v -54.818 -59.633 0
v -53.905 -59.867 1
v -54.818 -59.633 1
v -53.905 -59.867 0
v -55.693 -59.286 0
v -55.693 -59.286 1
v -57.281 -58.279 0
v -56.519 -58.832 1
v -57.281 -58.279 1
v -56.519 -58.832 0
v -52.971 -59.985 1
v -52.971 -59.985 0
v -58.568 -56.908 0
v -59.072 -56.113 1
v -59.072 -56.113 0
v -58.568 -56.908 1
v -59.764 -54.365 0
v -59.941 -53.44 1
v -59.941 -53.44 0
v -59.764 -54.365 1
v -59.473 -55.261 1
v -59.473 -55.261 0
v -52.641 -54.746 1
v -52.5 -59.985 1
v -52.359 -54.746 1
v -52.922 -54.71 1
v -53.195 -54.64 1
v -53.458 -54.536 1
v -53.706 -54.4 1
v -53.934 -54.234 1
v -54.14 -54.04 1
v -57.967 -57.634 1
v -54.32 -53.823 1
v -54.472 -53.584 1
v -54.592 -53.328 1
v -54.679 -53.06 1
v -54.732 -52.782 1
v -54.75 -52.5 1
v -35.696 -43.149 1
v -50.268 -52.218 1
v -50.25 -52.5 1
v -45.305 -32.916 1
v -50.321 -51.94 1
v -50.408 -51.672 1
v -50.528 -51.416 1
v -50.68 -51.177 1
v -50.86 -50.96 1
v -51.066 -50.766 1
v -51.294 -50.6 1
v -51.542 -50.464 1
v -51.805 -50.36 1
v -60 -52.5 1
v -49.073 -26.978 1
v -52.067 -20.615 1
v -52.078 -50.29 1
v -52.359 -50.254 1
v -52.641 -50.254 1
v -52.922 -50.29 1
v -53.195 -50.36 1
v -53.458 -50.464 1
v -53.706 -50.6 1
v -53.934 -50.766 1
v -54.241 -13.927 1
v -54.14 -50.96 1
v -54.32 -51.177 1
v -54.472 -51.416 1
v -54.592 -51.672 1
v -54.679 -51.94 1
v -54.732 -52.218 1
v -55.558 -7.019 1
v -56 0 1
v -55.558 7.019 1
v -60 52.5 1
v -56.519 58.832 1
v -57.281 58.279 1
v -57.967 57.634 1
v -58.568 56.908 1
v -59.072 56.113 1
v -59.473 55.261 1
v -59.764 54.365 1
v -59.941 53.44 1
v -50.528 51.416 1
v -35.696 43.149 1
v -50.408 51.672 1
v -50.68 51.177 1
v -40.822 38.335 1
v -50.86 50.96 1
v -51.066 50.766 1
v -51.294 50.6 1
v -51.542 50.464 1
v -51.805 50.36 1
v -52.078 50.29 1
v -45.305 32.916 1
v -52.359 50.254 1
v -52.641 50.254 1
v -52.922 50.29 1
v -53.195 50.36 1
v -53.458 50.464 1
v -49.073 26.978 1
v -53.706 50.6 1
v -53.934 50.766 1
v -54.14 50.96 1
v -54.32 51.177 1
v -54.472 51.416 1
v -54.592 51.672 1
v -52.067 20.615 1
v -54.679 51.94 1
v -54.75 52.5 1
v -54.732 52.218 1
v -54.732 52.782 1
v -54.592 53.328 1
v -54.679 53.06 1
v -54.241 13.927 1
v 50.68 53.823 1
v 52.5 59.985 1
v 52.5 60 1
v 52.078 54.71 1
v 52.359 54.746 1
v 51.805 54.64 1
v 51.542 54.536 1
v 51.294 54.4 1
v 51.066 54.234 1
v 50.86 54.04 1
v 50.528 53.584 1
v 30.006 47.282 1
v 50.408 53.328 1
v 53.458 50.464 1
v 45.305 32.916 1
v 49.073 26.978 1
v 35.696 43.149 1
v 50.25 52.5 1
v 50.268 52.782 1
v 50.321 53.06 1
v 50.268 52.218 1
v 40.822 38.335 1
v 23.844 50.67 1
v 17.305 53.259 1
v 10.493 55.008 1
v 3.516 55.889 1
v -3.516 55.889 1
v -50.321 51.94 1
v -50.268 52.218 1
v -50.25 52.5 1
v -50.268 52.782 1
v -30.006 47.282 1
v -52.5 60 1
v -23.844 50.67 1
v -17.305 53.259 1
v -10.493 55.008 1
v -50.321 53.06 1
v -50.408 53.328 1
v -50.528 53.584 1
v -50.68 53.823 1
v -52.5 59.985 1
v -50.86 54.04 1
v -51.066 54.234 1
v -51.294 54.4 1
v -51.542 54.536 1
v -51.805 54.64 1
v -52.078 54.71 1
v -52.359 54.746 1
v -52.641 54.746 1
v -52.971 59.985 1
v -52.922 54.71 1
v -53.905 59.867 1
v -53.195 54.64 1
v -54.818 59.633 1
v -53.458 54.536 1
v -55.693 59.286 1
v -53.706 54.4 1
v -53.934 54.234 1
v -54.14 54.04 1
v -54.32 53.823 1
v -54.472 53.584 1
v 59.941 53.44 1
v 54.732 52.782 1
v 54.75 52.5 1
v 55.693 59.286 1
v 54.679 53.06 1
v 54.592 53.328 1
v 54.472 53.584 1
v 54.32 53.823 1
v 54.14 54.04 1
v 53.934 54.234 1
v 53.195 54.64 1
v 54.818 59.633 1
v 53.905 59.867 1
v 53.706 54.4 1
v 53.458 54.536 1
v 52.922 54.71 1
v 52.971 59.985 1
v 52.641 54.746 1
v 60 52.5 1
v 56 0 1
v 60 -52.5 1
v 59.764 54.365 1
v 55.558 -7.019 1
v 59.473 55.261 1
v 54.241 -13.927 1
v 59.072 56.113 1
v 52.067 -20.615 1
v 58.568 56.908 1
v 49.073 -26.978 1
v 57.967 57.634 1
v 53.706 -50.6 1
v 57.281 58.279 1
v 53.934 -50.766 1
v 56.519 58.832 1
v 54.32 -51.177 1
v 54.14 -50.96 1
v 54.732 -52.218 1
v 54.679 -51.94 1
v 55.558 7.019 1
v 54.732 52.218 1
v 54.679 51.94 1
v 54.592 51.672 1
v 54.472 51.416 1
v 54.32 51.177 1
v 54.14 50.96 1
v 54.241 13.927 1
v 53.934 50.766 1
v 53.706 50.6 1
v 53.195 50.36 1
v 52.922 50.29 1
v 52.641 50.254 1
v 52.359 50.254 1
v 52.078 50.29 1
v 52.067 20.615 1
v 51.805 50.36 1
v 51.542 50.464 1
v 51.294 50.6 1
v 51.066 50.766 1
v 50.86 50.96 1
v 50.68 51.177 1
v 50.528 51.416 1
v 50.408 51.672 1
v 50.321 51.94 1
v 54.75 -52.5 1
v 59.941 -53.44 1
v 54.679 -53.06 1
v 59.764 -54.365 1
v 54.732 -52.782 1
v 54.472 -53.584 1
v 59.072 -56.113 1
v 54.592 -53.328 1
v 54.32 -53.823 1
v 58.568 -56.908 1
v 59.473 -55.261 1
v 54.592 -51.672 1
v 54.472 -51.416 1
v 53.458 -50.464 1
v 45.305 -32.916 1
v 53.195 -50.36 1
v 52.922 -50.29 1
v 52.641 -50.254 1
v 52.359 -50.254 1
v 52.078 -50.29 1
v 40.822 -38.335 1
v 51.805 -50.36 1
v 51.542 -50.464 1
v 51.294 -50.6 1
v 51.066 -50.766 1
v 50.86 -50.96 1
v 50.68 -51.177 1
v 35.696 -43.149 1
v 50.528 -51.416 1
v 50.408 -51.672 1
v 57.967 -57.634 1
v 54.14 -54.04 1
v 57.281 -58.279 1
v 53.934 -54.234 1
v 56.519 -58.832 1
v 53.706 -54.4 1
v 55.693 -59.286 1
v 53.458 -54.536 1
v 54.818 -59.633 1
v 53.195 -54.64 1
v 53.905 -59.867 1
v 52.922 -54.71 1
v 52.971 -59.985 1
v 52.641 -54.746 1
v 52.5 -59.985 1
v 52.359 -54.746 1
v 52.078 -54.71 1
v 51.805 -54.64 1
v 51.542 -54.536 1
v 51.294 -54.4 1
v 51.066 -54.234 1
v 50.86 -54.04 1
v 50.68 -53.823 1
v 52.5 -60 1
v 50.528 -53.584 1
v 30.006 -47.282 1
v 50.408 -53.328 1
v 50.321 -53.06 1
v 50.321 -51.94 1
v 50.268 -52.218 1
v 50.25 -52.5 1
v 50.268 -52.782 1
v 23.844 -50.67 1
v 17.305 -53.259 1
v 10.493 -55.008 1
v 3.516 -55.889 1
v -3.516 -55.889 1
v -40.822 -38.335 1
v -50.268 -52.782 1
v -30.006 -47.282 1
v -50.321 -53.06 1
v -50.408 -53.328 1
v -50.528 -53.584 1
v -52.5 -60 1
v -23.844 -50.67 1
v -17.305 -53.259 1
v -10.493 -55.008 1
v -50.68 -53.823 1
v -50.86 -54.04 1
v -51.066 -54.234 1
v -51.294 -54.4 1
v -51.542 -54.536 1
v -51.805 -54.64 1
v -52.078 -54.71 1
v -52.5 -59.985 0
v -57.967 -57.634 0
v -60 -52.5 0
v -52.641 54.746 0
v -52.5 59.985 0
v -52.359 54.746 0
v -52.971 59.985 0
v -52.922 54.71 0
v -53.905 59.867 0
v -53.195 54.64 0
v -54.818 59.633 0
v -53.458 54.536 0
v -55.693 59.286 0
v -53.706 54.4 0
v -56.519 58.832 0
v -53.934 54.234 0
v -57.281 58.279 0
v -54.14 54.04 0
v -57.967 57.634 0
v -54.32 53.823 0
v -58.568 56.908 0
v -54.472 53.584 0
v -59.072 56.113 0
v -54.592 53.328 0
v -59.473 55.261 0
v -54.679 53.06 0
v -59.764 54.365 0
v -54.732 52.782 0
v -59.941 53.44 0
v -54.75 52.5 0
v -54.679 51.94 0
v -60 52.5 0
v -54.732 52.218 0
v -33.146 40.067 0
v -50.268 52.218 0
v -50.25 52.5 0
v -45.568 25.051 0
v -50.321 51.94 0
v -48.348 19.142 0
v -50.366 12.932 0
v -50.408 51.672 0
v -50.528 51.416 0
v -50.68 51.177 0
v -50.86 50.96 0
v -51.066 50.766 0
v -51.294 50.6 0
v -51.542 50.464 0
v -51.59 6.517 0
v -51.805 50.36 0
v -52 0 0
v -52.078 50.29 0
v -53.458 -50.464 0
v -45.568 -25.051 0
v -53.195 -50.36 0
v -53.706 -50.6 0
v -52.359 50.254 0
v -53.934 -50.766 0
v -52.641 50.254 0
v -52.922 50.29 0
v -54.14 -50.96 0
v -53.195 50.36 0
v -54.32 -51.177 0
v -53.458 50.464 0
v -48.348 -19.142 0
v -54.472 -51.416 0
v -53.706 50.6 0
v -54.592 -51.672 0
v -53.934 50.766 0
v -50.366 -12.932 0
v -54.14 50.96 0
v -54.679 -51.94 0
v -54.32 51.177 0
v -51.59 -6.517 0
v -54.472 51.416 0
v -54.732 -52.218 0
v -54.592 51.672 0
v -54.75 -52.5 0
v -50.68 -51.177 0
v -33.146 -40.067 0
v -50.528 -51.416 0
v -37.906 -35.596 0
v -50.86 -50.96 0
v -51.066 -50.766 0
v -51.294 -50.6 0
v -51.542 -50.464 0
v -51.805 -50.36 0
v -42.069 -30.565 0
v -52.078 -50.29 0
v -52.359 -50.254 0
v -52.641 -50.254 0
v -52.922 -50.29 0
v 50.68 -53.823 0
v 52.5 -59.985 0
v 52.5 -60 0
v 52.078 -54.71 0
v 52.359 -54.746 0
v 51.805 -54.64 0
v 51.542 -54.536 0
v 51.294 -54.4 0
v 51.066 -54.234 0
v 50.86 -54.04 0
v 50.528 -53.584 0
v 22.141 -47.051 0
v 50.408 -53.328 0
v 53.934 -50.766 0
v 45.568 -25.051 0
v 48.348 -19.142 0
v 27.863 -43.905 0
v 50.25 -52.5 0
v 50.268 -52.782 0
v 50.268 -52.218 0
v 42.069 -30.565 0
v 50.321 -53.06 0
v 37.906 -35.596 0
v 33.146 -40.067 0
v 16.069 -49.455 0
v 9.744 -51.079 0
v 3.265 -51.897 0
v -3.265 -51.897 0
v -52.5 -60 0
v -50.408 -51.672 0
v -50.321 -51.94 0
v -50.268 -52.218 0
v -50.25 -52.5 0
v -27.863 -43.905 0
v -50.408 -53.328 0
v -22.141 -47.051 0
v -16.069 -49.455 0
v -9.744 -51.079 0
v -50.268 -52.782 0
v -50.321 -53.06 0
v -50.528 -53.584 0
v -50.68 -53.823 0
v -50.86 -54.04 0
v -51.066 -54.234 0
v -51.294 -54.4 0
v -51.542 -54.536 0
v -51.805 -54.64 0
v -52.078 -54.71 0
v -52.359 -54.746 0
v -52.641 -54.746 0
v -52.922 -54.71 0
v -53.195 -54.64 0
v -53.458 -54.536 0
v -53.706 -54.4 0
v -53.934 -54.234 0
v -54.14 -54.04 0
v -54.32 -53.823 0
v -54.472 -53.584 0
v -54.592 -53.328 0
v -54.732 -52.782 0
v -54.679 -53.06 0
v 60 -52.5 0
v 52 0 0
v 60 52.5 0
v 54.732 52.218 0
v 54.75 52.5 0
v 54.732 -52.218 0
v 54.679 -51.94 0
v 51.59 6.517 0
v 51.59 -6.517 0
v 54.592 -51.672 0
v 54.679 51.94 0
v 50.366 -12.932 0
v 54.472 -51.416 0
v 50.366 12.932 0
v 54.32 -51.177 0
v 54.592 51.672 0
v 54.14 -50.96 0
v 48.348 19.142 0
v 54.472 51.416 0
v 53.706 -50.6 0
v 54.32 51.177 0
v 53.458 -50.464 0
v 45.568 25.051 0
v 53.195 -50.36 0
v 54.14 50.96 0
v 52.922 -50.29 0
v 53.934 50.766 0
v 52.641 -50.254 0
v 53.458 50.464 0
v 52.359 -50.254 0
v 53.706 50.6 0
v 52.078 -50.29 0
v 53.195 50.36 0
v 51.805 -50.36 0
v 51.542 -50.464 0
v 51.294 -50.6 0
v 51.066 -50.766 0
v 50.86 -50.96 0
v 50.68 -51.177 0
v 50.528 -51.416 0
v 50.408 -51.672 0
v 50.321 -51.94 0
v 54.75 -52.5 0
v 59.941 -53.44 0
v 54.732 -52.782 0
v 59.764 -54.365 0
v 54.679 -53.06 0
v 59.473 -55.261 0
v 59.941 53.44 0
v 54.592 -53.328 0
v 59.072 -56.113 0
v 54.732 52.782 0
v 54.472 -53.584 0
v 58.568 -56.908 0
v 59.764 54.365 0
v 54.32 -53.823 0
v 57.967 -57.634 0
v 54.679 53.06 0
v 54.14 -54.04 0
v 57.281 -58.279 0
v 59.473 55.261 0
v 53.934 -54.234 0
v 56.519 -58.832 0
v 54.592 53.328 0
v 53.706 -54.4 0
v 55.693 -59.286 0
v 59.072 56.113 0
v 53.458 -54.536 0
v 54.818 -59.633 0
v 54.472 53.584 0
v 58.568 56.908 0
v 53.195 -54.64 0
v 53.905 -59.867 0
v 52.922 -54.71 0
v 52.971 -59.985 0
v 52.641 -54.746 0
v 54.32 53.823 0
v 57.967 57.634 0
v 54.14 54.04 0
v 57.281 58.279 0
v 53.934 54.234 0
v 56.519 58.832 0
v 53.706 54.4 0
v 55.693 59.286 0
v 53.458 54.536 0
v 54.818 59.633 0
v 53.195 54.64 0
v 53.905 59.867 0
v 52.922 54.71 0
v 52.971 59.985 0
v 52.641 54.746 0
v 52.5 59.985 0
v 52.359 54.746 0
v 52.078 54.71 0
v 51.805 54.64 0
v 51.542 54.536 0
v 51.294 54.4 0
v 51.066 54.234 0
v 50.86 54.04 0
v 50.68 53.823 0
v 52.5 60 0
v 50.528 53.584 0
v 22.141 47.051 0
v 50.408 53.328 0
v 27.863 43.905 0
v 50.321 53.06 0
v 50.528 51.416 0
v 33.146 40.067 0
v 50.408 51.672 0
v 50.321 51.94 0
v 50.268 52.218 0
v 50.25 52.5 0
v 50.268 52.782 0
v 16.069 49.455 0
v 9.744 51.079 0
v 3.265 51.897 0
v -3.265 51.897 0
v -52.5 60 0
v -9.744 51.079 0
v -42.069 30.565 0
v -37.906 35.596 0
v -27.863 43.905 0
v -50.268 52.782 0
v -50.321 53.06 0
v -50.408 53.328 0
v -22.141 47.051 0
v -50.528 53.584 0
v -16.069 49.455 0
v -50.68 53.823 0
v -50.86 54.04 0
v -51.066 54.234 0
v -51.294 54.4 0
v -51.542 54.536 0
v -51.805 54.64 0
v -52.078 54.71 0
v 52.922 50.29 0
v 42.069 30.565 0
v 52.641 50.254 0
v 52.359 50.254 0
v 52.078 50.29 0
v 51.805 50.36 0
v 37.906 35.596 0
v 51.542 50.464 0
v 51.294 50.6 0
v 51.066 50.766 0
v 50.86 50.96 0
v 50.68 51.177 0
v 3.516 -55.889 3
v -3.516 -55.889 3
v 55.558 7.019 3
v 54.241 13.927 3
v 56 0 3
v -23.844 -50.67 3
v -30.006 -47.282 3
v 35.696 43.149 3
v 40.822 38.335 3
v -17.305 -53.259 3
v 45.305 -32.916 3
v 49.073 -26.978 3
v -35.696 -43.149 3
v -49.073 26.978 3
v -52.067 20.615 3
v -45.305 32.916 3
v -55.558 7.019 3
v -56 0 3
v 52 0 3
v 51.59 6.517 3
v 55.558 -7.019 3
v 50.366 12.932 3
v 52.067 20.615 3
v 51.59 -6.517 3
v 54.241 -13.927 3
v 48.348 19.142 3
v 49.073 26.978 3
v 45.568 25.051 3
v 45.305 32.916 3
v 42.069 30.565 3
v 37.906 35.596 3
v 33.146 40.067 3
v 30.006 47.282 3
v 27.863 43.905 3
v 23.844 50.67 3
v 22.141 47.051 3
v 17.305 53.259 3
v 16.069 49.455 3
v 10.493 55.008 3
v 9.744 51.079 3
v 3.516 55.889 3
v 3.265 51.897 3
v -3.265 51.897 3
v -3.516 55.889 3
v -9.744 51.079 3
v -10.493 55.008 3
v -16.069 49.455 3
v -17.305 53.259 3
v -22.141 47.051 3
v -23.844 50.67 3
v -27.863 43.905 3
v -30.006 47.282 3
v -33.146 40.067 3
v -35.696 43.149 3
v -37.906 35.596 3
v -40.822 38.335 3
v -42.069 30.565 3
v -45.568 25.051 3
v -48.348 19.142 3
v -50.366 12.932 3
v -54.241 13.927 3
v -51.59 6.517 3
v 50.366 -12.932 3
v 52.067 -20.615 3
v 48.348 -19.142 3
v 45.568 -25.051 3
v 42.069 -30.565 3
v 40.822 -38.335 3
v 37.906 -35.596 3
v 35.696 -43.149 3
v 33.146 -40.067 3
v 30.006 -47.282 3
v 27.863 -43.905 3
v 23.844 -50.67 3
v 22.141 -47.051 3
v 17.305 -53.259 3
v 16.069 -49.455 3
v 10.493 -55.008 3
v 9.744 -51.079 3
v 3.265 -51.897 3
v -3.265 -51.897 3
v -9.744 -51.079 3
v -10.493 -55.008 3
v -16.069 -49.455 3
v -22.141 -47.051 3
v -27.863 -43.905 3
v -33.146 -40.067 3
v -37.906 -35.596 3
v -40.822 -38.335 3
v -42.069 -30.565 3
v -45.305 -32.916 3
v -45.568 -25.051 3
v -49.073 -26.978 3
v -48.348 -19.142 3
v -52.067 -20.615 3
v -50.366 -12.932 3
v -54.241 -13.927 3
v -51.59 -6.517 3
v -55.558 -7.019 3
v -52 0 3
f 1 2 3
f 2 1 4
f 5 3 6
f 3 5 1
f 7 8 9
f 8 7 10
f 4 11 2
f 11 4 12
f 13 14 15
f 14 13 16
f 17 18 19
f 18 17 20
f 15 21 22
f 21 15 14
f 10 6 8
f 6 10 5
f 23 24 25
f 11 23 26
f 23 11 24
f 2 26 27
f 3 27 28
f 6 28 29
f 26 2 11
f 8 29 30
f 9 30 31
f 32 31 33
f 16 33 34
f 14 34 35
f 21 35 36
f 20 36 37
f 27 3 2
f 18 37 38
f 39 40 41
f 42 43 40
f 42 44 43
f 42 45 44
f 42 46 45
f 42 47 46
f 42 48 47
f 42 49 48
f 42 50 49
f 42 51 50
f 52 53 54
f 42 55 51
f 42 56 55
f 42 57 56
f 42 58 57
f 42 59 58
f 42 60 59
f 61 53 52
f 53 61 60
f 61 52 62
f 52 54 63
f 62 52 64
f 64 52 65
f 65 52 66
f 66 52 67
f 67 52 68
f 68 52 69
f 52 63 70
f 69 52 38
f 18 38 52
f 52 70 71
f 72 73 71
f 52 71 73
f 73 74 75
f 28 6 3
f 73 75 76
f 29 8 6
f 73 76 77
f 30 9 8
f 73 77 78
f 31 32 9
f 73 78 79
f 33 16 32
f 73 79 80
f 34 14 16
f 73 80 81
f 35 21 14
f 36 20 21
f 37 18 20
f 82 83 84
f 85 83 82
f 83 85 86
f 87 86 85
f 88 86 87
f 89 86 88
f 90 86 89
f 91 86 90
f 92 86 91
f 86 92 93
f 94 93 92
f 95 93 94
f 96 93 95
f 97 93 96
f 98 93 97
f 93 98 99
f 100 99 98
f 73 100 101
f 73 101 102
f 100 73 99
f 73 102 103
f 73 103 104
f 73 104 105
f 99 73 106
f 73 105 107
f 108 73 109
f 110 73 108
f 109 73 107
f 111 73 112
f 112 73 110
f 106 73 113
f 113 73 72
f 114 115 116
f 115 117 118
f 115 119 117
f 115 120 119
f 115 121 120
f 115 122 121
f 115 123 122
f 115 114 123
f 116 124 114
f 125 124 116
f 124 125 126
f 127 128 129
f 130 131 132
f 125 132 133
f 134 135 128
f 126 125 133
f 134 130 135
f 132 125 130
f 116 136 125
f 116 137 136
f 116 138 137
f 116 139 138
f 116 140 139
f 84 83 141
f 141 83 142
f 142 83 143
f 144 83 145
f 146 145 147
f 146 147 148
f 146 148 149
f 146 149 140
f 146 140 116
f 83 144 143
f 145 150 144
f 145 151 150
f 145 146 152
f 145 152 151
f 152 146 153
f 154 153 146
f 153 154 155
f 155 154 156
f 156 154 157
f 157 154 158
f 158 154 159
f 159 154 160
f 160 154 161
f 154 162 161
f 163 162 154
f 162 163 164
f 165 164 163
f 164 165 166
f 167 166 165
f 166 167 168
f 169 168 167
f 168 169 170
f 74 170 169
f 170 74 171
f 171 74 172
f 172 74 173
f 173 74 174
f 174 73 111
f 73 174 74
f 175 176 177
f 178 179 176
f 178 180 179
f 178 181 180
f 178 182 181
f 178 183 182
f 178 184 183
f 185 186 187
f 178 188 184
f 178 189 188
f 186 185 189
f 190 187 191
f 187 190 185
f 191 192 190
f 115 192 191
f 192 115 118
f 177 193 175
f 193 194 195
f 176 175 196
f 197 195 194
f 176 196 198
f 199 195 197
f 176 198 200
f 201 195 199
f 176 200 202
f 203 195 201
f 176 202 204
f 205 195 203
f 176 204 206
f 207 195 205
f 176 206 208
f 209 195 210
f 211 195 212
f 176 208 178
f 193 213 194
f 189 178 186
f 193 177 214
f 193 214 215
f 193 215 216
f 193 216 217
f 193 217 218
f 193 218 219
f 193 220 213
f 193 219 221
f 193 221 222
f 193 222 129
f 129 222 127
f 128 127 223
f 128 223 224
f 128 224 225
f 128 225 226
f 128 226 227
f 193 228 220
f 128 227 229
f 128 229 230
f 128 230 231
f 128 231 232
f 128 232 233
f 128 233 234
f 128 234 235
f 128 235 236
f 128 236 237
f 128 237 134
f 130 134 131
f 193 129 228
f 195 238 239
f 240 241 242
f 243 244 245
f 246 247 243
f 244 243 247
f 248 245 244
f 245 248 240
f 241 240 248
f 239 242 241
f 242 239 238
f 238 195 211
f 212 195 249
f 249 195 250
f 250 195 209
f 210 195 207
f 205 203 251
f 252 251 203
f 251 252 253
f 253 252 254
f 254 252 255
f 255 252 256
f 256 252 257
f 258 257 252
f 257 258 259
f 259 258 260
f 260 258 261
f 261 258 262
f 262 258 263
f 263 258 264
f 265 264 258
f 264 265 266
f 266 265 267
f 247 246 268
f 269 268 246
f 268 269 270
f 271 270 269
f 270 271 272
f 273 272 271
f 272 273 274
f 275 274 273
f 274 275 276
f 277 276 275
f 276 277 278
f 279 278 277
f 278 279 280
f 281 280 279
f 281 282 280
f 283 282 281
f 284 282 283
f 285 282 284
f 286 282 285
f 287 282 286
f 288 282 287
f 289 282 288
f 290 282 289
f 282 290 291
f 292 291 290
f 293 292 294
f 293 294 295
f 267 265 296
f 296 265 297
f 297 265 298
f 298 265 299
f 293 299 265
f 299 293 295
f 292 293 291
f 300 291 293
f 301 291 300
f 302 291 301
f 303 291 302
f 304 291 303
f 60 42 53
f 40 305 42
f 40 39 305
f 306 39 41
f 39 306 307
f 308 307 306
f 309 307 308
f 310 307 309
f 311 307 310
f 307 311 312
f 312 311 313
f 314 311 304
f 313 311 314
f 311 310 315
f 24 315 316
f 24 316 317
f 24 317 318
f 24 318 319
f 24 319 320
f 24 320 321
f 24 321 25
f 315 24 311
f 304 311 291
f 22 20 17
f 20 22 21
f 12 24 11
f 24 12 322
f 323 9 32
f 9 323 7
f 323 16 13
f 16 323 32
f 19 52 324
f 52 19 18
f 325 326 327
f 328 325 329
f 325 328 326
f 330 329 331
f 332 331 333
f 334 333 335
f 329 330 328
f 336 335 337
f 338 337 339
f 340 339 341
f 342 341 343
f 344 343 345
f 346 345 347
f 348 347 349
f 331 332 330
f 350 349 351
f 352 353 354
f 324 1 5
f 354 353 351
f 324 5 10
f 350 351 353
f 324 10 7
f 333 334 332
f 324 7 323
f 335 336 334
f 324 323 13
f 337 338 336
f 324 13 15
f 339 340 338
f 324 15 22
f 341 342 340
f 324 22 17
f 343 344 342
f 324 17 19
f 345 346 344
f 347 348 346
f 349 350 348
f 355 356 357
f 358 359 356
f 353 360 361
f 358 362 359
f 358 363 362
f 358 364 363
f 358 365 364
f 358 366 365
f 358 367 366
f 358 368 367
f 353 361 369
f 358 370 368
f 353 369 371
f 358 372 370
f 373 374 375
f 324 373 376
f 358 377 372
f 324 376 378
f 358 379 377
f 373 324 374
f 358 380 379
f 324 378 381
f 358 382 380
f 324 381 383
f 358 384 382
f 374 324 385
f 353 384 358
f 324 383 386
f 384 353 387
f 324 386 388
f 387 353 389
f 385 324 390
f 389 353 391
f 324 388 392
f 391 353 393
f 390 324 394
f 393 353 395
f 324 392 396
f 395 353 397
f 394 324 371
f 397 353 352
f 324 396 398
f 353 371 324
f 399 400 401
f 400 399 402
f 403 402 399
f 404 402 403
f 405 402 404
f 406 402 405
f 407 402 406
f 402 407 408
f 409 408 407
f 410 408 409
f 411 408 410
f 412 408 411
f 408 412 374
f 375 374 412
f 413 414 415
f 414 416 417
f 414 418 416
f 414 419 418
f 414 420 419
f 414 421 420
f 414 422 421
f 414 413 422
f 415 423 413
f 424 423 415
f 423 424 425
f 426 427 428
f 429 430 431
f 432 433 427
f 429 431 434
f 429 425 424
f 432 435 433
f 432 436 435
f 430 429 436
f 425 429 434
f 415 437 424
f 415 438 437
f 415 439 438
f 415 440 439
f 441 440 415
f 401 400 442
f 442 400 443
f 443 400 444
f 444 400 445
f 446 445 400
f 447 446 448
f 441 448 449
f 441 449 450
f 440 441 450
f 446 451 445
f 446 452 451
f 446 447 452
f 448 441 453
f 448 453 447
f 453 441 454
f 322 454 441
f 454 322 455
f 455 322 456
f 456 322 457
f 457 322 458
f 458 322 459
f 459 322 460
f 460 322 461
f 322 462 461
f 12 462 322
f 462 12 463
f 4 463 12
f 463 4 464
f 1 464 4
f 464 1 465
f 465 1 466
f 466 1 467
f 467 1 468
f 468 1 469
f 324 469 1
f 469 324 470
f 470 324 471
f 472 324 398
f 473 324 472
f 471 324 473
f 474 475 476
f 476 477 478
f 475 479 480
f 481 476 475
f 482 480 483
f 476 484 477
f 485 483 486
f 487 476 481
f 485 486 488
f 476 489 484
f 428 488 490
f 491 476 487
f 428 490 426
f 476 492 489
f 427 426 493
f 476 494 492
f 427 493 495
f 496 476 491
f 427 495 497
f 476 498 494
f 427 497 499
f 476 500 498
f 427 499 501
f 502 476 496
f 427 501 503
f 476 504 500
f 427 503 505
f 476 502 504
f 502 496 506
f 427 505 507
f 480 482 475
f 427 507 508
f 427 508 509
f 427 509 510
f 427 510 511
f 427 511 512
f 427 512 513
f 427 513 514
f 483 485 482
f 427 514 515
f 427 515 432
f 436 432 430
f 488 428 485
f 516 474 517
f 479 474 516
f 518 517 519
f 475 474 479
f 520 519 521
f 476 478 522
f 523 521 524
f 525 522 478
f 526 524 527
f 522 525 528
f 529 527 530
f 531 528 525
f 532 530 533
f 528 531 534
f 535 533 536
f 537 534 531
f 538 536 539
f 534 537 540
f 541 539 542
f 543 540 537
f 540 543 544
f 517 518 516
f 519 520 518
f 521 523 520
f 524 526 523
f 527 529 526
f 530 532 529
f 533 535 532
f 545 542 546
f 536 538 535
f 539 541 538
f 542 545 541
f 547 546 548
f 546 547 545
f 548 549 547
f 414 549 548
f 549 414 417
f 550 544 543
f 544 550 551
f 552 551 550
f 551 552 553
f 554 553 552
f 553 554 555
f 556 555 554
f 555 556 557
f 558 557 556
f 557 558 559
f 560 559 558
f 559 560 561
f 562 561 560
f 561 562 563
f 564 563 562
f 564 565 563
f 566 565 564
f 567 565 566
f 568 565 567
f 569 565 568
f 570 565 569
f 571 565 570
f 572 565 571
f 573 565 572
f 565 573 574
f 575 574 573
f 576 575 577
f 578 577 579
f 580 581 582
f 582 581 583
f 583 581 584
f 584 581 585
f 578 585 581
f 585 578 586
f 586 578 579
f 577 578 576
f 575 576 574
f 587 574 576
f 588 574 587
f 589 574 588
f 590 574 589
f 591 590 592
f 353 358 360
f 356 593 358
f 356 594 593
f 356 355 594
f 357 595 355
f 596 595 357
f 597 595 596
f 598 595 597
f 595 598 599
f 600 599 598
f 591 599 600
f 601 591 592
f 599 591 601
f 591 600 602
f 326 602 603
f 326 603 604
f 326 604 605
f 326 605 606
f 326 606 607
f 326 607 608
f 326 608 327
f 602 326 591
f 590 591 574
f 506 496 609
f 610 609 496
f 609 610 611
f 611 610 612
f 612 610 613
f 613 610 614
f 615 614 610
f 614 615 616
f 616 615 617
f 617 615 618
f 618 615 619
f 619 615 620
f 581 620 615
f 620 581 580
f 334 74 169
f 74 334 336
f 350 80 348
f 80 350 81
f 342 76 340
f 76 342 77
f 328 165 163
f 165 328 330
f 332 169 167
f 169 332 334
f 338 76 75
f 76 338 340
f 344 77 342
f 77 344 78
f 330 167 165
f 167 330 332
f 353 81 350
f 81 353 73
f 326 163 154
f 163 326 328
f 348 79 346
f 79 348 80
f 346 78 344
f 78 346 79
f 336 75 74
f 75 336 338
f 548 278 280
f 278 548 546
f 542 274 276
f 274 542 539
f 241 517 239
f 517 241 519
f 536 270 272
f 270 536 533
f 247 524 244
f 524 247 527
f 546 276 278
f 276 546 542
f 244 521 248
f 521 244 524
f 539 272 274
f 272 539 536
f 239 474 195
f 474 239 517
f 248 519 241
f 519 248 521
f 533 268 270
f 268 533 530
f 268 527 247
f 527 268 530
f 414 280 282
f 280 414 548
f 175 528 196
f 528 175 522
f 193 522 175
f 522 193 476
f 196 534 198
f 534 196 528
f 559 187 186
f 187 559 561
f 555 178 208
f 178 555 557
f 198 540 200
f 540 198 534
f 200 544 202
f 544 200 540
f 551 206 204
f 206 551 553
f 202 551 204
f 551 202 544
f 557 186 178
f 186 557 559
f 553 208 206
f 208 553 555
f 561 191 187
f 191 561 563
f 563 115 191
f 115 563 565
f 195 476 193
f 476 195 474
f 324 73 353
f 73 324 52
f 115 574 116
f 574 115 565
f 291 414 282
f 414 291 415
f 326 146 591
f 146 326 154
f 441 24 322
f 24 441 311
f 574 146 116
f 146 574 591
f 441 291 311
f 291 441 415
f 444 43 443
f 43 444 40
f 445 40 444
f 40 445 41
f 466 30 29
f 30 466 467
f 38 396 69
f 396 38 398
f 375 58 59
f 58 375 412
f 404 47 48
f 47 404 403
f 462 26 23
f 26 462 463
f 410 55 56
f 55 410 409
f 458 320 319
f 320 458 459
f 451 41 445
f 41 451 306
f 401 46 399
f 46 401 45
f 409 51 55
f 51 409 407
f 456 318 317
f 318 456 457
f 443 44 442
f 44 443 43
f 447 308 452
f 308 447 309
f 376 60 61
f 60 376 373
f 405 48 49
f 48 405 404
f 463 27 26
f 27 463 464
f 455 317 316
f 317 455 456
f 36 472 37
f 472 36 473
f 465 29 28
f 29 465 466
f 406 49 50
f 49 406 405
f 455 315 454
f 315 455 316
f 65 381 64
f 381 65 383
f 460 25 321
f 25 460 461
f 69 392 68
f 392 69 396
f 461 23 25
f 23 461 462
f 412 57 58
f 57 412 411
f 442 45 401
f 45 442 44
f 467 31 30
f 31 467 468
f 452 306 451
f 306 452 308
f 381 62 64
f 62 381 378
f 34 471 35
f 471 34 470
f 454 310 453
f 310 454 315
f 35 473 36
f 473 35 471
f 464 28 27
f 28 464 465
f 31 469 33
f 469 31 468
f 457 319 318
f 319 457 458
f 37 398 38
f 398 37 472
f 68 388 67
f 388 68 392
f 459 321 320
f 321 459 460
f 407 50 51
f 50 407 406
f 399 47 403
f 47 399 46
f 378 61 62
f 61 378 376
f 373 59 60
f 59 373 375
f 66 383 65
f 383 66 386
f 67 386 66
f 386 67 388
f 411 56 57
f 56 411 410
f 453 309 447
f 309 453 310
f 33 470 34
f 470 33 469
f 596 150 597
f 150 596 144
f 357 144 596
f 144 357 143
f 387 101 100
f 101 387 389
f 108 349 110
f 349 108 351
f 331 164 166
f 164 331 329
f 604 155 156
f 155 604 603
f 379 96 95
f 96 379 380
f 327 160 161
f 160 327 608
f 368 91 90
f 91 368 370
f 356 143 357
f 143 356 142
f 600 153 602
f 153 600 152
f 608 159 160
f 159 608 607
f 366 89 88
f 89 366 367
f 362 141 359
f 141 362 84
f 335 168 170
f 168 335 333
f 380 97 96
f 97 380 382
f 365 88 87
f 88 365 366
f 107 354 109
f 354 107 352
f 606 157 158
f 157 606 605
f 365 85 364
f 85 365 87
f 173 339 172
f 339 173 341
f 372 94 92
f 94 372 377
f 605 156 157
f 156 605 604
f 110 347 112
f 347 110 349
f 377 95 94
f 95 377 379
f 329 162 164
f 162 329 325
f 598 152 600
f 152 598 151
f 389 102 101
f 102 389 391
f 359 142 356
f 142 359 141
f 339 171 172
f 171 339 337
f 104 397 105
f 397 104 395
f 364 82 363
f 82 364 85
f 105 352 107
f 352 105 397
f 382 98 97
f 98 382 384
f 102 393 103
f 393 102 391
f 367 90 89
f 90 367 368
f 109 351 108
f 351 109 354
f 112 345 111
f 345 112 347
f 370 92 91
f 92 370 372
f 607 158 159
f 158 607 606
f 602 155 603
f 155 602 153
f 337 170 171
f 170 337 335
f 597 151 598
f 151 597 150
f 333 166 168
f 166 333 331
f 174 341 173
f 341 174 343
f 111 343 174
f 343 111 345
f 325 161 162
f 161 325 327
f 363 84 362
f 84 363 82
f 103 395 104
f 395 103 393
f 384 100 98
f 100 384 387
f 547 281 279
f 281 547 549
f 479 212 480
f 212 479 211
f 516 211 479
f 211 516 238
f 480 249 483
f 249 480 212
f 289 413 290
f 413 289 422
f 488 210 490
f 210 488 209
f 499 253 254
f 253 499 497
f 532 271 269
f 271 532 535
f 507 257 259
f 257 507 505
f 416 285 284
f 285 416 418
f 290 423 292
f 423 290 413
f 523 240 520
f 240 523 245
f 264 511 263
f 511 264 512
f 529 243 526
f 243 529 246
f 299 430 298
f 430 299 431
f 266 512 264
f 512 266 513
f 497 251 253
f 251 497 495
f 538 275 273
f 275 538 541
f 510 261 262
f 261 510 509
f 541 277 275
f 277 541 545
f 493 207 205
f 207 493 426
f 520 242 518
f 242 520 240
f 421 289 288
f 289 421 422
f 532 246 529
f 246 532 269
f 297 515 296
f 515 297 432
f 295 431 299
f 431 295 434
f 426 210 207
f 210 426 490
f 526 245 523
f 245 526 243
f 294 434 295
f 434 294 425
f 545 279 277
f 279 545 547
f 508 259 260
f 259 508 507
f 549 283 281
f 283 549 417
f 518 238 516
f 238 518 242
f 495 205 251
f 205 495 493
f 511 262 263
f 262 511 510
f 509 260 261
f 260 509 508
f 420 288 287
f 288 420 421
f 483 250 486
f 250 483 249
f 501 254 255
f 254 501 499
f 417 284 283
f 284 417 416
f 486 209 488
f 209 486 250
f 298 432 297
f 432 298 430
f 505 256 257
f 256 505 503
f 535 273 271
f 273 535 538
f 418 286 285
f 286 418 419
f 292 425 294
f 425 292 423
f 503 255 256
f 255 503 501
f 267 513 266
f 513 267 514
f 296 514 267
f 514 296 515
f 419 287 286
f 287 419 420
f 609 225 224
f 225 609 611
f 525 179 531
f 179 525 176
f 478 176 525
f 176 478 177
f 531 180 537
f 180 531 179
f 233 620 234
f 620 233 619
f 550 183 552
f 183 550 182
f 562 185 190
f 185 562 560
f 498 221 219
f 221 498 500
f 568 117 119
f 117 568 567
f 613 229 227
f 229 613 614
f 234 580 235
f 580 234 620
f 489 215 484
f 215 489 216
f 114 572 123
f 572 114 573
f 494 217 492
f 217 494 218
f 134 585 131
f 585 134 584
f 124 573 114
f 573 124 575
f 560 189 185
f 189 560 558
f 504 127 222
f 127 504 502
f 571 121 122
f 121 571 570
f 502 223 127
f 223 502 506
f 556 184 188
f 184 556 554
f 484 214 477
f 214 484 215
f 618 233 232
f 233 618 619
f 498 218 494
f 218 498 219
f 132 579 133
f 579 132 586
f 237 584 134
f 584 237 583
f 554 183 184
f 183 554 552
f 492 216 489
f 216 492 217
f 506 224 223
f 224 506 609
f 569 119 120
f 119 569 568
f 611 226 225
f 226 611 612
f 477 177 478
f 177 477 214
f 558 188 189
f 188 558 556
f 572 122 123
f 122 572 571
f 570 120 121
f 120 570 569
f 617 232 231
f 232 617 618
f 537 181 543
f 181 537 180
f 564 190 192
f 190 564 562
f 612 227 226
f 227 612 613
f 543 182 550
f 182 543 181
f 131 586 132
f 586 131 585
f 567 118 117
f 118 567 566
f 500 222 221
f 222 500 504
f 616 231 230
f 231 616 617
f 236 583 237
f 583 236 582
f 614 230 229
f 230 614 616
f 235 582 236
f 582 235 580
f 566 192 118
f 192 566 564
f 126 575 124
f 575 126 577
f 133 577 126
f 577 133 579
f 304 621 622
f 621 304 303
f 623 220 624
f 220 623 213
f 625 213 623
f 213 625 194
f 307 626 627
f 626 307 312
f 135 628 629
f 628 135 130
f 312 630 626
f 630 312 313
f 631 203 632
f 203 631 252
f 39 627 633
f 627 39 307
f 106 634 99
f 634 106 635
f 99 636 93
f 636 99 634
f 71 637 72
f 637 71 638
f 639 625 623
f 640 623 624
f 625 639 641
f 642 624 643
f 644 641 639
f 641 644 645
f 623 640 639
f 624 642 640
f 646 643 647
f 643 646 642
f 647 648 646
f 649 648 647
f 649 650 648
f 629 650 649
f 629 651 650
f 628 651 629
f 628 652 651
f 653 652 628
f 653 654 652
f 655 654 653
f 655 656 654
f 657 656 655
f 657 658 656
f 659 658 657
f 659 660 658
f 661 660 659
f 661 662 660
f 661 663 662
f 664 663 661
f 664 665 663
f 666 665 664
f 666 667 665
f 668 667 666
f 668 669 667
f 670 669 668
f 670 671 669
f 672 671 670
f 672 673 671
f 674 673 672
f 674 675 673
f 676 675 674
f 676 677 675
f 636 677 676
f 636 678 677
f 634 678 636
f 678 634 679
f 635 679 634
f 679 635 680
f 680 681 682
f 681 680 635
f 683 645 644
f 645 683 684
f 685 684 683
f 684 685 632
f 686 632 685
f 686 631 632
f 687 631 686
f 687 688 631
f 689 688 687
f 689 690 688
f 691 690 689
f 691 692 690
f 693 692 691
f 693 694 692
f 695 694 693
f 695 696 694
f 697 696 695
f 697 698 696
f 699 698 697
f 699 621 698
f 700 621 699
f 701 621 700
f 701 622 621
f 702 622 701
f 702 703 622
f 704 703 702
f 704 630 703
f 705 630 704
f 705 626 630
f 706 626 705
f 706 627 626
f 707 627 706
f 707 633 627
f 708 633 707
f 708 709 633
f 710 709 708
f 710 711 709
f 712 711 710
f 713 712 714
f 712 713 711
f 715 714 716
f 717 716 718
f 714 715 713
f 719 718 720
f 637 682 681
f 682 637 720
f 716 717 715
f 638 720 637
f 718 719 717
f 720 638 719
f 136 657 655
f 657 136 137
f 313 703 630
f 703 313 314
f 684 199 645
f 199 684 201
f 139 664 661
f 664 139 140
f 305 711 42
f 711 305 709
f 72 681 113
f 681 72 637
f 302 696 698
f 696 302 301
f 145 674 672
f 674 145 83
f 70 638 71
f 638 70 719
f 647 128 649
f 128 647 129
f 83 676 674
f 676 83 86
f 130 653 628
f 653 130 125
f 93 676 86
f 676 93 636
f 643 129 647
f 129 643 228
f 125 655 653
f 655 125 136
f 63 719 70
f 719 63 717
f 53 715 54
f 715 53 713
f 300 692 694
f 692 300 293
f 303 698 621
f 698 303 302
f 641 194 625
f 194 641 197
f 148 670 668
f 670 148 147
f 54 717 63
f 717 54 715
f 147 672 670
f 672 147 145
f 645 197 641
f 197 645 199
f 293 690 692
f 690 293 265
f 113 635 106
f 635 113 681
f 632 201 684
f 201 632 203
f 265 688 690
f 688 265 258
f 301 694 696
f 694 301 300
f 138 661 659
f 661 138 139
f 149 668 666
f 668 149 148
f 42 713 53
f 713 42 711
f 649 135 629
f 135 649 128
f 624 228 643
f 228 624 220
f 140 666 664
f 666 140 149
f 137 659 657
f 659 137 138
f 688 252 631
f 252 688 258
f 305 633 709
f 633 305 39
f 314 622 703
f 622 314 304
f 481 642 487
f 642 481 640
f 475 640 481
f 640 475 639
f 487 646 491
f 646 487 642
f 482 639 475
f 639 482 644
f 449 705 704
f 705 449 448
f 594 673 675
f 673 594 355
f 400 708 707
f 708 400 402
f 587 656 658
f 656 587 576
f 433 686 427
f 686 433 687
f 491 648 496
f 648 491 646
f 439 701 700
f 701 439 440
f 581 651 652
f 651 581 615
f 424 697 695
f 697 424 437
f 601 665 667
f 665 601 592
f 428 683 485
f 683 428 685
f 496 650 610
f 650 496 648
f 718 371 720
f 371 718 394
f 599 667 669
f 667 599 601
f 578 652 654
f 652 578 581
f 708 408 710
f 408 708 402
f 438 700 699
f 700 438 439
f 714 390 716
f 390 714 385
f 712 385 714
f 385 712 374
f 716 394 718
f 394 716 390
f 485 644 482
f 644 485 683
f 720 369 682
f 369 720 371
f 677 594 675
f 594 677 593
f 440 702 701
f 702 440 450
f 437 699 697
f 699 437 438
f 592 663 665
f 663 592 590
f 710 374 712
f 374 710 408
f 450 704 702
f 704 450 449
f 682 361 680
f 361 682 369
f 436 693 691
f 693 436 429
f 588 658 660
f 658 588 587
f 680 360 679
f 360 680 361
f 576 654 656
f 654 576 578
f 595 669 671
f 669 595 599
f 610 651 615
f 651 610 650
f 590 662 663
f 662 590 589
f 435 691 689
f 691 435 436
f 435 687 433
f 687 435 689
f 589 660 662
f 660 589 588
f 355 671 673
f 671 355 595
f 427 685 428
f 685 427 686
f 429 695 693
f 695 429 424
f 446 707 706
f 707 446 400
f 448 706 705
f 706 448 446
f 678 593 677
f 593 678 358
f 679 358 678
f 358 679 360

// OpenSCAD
$fn = 50;

module flansch(breite_flansch, abstand_bohrungen, durchmesser_bohrung, hoehe, gewinde="NO"){
    radius_abrundung=(breite_flansch-abstand_bohrungen)/2;
    difference(){
        union(){
            translate([-breite_flansch/2, -breite_flansch/2+radius_abrundung, 0]){
                cube([breite_flansch, breite_flansch-2*radius_abrundung, hoehe]);
                }
            translate([-breite_flansch/2+radius_abrundung, -breite_flansch/2, 0]){
                cube([breite_flansch-2*radius_abrundung, breite_flansch, hoehe]);
                }
            for(x = [-1, 1]){
                for (y = [-1, 1]){
                    translate([x * (breite_flansch/2-radius_abrundung), y * (breite_flansch/2-radius_abrundung), 0]){
                        cylinder(hoehe, radius_abrundung, radius_abrundung);
                        }
                        if (gewinde == "YES"){mxThreadInternal(screw,hoehe);}                         
                    }
                }
            }
        for(x = [-1, 1]){
            for (y = [-1, 1]){
                translate([x * (breite_flansch/2-radius_abrundung), y * (breite_flansch/2-radius_abrundung), 0]){
                    cylinder(hoehe, durchmesser_bohrung/2, durchmesser_bohrung/2);
                    }
                }
            }
        }
    }


hoehe_flansch=1;
breite_flansch_unten = 120;
abstand_bohrungen_unten = 105;
bohrung = 4.5;
wandung= 4;
durchmesser_ventilator = breite_flansch_unten-2*8;
durchmesser_ende = 13;
vertiefung = 2;

difference(){
    union(){
        flansch(breite_flansch_unten, abstand_bohrungen_unten, bohrung, hoehe_flansch);
        cylinder(hoehe_flansch+vertiefung, durchmesser_ventilator/2+wandung, durchmesser_ventilator/2+wandung);
        }
    union(){
        cylinder(hoehe_flansch+vertiefung, durchmesser_ventilator/2, durchmesser_ventilator/2);
        }    
    }
